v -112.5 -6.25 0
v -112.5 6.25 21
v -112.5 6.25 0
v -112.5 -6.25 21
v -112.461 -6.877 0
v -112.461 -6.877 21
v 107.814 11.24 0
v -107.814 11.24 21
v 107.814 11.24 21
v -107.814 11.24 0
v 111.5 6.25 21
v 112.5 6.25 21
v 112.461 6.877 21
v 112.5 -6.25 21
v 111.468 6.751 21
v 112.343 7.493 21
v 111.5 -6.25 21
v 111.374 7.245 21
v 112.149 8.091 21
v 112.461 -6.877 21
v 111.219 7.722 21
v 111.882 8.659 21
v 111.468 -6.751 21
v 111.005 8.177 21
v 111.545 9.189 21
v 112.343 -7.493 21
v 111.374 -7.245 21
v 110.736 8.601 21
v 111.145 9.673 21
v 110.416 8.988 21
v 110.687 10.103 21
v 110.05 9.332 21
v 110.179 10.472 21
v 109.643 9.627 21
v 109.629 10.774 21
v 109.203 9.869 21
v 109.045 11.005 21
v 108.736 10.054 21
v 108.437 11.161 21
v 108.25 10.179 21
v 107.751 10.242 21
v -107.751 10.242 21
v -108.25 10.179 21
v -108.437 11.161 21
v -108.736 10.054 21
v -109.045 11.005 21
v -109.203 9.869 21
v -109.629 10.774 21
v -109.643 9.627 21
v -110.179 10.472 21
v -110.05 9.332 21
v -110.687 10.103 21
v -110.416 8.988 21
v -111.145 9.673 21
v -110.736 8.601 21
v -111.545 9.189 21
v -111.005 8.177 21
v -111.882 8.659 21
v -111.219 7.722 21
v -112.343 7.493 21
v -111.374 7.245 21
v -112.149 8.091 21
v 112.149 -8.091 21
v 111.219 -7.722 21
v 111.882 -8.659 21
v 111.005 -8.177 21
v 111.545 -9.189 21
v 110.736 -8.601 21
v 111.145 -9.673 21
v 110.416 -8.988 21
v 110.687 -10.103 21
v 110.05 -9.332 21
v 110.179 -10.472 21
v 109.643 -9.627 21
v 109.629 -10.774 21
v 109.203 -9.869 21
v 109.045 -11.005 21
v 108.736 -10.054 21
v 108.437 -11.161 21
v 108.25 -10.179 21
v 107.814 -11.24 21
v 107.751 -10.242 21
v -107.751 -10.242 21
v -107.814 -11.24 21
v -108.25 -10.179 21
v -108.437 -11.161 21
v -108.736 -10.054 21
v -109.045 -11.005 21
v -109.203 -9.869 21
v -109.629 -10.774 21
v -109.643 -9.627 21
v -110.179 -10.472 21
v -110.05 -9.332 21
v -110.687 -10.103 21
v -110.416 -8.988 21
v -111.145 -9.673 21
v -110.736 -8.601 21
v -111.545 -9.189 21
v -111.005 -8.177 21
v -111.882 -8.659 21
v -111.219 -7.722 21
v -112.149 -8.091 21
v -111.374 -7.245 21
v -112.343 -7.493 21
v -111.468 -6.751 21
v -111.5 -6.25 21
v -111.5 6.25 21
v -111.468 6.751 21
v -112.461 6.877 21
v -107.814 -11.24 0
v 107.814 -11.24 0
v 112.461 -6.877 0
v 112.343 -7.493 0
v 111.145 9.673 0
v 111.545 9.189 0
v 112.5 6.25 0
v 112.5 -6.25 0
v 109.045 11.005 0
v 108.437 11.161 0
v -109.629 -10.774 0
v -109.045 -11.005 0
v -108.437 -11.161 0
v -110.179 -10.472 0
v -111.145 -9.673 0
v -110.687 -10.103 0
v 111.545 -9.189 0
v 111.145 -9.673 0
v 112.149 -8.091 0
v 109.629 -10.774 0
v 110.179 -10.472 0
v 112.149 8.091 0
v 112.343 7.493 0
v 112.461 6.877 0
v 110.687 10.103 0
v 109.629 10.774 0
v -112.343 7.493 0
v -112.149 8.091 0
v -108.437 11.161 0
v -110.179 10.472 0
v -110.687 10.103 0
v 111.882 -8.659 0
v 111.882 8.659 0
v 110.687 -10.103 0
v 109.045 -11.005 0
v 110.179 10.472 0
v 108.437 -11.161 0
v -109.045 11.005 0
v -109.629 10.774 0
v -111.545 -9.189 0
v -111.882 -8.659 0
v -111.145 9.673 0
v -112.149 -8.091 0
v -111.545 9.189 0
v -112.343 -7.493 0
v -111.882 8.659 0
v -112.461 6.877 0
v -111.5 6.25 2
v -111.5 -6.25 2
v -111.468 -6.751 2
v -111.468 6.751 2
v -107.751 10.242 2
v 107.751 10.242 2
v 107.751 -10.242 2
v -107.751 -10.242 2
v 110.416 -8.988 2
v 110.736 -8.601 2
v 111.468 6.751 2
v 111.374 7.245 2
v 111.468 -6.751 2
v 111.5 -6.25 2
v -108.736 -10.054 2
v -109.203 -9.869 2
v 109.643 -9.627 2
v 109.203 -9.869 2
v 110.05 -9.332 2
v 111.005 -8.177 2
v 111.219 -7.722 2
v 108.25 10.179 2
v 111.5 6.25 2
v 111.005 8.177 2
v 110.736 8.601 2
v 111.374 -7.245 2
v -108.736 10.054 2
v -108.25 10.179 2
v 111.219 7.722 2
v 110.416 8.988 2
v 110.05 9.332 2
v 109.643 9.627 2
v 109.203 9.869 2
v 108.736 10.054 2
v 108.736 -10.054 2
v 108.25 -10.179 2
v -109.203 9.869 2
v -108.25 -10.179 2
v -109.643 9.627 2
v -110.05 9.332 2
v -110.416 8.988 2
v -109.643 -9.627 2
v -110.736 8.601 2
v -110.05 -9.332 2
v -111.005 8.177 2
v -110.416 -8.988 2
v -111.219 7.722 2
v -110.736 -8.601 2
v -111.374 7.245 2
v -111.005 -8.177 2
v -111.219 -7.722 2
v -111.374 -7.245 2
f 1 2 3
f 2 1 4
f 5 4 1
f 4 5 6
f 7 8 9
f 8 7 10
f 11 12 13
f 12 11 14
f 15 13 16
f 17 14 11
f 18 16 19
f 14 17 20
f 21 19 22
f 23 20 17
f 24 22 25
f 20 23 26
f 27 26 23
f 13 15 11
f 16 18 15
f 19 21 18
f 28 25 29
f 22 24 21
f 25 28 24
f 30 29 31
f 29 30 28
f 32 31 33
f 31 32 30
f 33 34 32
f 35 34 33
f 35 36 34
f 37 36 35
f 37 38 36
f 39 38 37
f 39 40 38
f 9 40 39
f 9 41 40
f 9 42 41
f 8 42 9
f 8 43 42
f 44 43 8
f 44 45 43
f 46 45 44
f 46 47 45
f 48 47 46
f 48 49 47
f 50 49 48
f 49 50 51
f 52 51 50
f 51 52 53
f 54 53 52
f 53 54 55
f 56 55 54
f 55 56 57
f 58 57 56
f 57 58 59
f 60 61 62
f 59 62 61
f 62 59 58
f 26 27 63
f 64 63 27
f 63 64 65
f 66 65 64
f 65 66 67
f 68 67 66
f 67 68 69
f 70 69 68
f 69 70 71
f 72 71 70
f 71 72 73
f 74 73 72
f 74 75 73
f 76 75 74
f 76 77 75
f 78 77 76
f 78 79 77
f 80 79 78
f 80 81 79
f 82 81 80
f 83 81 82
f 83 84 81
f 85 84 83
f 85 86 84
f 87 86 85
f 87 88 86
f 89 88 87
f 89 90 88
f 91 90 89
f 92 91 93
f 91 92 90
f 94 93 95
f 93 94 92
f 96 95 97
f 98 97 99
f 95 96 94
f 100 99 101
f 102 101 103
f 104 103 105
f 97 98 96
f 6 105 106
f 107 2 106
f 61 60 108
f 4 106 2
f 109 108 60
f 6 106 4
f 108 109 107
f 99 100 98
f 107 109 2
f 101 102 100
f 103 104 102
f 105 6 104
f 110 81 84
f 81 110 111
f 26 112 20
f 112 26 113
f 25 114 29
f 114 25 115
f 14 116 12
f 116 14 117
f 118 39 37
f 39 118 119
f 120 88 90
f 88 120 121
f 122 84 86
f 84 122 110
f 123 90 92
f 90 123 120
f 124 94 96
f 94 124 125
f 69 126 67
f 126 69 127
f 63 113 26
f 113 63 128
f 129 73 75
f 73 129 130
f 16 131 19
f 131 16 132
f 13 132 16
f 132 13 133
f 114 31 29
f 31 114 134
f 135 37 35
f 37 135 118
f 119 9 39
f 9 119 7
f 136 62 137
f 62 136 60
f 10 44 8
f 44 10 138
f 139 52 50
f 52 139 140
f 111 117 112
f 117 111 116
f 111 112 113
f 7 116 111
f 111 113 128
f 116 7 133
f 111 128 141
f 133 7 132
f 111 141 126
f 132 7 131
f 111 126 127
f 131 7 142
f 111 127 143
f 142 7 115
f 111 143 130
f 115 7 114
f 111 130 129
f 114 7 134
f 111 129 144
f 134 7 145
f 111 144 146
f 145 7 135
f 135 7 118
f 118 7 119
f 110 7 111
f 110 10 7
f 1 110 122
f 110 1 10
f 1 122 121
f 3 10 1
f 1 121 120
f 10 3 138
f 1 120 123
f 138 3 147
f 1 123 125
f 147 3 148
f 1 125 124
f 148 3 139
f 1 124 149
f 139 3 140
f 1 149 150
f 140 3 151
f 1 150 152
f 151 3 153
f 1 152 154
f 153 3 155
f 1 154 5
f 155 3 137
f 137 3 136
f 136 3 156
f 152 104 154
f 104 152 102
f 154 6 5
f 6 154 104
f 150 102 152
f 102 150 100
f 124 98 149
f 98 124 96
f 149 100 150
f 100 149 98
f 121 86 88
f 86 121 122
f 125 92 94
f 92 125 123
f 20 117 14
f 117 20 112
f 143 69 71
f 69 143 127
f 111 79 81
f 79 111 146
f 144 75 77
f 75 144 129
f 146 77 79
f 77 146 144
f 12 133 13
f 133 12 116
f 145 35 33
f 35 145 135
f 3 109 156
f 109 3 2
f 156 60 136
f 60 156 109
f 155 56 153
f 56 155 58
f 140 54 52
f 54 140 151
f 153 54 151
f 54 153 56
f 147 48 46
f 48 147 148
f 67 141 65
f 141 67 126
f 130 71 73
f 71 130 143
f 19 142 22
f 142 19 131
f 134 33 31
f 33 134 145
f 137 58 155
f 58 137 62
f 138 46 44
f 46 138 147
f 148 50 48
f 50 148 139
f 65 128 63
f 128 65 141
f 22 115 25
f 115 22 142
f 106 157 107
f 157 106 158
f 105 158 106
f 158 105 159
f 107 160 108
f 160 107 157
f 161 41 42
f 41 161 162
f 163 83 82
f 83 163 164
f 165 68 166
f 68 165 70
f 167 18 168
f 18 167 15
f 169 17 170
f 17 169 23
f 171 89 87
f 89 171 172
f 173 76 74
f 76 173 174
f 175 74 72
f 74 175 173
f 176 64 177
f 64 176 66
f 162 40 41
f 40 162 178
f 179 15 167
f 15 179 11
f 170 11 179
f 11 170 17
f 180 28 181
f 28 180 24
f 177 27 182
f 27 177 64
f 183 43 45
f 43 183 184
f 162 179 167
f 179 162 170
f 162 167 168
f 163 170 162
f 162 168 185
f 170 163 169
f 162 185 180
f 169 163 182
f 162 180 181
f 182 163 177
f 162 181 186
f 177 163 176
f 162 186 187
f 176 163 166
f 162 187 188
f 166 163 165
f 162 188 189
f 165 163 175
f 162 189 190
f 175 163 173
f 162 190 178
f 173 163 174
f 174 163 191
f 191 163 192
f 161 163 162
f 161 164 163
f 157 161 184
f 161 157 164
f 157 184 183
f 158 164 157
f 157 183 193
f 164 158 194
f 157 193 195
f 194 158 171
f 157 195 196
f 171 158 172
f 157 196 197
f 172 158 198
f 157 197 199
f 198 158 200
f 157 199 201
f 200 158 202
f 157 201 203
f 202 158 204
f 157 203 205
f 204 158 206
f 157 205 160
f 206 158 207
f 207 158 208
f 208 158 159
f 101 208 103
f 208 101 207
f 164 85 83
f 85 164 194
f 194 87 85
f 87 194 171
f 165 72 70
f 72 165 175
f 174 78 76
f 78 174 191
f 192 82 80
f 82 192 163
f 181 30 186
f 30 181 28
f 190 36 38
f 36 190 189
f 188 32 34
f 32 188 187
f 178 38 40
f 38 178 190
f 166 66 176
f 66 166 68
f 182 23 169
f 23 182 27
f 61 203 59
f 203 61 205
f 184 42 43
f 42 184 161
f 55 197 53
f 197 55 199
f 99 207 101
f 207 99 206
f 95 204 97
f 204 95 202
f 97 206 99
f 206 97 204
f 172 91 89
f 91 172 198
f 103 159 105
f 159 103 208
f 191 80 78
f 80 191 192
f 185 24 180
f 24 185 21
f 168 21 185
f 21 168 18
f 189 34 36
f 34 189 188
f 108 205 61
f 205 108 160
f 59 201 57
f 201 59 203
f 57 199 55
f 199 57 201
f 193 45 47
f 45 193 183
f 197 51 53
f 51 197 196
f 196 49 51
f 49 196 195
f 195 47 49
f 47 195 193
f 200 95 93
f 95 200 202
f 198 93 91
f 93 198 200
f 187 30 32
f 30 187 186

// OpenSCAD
$fn = 50;


difference() {
	union() {
		hull() {
			translate(v = [-107.5000000000, 6.2500000000, 0]) {
				cylinder(h = 21, r = 5);
			}
			translate(v = [107.5000000000, 6.2500000000, 0]) {
				cylinder(h = 21, r = 5);
			}
			translate(v = [-107.5000000000, -6.2500000000, 0]) {
				cylinder(h = 21, r = 5);
			}
			translate(v = [107.5000000000, -6.2500000000, 0]) {
				cylinder(h = 21, r = 5);
			}
		}
	}
	union() {
		translate(v = [0, 0, 2]) {
			hull() {
				translate(v = [-107.5000000000, 6.2500000000, 0]) {
					cylinder(h = 19, r = 4);
				}
				translate(v = [107.5000000000, 6.2500000000, 0]) {
					cylinder(h = 19, r = 4);
				}
				translate(v = [-107.5000000000, -6.2500000000, 0]) {
					cylinder(h = 19, r = 4);
				}
				translate(v = [107.5000000000, -6.2500000000, 0]) {
					cylinder(h = 19, r = 4);
				}
			}
		}
	}
}
